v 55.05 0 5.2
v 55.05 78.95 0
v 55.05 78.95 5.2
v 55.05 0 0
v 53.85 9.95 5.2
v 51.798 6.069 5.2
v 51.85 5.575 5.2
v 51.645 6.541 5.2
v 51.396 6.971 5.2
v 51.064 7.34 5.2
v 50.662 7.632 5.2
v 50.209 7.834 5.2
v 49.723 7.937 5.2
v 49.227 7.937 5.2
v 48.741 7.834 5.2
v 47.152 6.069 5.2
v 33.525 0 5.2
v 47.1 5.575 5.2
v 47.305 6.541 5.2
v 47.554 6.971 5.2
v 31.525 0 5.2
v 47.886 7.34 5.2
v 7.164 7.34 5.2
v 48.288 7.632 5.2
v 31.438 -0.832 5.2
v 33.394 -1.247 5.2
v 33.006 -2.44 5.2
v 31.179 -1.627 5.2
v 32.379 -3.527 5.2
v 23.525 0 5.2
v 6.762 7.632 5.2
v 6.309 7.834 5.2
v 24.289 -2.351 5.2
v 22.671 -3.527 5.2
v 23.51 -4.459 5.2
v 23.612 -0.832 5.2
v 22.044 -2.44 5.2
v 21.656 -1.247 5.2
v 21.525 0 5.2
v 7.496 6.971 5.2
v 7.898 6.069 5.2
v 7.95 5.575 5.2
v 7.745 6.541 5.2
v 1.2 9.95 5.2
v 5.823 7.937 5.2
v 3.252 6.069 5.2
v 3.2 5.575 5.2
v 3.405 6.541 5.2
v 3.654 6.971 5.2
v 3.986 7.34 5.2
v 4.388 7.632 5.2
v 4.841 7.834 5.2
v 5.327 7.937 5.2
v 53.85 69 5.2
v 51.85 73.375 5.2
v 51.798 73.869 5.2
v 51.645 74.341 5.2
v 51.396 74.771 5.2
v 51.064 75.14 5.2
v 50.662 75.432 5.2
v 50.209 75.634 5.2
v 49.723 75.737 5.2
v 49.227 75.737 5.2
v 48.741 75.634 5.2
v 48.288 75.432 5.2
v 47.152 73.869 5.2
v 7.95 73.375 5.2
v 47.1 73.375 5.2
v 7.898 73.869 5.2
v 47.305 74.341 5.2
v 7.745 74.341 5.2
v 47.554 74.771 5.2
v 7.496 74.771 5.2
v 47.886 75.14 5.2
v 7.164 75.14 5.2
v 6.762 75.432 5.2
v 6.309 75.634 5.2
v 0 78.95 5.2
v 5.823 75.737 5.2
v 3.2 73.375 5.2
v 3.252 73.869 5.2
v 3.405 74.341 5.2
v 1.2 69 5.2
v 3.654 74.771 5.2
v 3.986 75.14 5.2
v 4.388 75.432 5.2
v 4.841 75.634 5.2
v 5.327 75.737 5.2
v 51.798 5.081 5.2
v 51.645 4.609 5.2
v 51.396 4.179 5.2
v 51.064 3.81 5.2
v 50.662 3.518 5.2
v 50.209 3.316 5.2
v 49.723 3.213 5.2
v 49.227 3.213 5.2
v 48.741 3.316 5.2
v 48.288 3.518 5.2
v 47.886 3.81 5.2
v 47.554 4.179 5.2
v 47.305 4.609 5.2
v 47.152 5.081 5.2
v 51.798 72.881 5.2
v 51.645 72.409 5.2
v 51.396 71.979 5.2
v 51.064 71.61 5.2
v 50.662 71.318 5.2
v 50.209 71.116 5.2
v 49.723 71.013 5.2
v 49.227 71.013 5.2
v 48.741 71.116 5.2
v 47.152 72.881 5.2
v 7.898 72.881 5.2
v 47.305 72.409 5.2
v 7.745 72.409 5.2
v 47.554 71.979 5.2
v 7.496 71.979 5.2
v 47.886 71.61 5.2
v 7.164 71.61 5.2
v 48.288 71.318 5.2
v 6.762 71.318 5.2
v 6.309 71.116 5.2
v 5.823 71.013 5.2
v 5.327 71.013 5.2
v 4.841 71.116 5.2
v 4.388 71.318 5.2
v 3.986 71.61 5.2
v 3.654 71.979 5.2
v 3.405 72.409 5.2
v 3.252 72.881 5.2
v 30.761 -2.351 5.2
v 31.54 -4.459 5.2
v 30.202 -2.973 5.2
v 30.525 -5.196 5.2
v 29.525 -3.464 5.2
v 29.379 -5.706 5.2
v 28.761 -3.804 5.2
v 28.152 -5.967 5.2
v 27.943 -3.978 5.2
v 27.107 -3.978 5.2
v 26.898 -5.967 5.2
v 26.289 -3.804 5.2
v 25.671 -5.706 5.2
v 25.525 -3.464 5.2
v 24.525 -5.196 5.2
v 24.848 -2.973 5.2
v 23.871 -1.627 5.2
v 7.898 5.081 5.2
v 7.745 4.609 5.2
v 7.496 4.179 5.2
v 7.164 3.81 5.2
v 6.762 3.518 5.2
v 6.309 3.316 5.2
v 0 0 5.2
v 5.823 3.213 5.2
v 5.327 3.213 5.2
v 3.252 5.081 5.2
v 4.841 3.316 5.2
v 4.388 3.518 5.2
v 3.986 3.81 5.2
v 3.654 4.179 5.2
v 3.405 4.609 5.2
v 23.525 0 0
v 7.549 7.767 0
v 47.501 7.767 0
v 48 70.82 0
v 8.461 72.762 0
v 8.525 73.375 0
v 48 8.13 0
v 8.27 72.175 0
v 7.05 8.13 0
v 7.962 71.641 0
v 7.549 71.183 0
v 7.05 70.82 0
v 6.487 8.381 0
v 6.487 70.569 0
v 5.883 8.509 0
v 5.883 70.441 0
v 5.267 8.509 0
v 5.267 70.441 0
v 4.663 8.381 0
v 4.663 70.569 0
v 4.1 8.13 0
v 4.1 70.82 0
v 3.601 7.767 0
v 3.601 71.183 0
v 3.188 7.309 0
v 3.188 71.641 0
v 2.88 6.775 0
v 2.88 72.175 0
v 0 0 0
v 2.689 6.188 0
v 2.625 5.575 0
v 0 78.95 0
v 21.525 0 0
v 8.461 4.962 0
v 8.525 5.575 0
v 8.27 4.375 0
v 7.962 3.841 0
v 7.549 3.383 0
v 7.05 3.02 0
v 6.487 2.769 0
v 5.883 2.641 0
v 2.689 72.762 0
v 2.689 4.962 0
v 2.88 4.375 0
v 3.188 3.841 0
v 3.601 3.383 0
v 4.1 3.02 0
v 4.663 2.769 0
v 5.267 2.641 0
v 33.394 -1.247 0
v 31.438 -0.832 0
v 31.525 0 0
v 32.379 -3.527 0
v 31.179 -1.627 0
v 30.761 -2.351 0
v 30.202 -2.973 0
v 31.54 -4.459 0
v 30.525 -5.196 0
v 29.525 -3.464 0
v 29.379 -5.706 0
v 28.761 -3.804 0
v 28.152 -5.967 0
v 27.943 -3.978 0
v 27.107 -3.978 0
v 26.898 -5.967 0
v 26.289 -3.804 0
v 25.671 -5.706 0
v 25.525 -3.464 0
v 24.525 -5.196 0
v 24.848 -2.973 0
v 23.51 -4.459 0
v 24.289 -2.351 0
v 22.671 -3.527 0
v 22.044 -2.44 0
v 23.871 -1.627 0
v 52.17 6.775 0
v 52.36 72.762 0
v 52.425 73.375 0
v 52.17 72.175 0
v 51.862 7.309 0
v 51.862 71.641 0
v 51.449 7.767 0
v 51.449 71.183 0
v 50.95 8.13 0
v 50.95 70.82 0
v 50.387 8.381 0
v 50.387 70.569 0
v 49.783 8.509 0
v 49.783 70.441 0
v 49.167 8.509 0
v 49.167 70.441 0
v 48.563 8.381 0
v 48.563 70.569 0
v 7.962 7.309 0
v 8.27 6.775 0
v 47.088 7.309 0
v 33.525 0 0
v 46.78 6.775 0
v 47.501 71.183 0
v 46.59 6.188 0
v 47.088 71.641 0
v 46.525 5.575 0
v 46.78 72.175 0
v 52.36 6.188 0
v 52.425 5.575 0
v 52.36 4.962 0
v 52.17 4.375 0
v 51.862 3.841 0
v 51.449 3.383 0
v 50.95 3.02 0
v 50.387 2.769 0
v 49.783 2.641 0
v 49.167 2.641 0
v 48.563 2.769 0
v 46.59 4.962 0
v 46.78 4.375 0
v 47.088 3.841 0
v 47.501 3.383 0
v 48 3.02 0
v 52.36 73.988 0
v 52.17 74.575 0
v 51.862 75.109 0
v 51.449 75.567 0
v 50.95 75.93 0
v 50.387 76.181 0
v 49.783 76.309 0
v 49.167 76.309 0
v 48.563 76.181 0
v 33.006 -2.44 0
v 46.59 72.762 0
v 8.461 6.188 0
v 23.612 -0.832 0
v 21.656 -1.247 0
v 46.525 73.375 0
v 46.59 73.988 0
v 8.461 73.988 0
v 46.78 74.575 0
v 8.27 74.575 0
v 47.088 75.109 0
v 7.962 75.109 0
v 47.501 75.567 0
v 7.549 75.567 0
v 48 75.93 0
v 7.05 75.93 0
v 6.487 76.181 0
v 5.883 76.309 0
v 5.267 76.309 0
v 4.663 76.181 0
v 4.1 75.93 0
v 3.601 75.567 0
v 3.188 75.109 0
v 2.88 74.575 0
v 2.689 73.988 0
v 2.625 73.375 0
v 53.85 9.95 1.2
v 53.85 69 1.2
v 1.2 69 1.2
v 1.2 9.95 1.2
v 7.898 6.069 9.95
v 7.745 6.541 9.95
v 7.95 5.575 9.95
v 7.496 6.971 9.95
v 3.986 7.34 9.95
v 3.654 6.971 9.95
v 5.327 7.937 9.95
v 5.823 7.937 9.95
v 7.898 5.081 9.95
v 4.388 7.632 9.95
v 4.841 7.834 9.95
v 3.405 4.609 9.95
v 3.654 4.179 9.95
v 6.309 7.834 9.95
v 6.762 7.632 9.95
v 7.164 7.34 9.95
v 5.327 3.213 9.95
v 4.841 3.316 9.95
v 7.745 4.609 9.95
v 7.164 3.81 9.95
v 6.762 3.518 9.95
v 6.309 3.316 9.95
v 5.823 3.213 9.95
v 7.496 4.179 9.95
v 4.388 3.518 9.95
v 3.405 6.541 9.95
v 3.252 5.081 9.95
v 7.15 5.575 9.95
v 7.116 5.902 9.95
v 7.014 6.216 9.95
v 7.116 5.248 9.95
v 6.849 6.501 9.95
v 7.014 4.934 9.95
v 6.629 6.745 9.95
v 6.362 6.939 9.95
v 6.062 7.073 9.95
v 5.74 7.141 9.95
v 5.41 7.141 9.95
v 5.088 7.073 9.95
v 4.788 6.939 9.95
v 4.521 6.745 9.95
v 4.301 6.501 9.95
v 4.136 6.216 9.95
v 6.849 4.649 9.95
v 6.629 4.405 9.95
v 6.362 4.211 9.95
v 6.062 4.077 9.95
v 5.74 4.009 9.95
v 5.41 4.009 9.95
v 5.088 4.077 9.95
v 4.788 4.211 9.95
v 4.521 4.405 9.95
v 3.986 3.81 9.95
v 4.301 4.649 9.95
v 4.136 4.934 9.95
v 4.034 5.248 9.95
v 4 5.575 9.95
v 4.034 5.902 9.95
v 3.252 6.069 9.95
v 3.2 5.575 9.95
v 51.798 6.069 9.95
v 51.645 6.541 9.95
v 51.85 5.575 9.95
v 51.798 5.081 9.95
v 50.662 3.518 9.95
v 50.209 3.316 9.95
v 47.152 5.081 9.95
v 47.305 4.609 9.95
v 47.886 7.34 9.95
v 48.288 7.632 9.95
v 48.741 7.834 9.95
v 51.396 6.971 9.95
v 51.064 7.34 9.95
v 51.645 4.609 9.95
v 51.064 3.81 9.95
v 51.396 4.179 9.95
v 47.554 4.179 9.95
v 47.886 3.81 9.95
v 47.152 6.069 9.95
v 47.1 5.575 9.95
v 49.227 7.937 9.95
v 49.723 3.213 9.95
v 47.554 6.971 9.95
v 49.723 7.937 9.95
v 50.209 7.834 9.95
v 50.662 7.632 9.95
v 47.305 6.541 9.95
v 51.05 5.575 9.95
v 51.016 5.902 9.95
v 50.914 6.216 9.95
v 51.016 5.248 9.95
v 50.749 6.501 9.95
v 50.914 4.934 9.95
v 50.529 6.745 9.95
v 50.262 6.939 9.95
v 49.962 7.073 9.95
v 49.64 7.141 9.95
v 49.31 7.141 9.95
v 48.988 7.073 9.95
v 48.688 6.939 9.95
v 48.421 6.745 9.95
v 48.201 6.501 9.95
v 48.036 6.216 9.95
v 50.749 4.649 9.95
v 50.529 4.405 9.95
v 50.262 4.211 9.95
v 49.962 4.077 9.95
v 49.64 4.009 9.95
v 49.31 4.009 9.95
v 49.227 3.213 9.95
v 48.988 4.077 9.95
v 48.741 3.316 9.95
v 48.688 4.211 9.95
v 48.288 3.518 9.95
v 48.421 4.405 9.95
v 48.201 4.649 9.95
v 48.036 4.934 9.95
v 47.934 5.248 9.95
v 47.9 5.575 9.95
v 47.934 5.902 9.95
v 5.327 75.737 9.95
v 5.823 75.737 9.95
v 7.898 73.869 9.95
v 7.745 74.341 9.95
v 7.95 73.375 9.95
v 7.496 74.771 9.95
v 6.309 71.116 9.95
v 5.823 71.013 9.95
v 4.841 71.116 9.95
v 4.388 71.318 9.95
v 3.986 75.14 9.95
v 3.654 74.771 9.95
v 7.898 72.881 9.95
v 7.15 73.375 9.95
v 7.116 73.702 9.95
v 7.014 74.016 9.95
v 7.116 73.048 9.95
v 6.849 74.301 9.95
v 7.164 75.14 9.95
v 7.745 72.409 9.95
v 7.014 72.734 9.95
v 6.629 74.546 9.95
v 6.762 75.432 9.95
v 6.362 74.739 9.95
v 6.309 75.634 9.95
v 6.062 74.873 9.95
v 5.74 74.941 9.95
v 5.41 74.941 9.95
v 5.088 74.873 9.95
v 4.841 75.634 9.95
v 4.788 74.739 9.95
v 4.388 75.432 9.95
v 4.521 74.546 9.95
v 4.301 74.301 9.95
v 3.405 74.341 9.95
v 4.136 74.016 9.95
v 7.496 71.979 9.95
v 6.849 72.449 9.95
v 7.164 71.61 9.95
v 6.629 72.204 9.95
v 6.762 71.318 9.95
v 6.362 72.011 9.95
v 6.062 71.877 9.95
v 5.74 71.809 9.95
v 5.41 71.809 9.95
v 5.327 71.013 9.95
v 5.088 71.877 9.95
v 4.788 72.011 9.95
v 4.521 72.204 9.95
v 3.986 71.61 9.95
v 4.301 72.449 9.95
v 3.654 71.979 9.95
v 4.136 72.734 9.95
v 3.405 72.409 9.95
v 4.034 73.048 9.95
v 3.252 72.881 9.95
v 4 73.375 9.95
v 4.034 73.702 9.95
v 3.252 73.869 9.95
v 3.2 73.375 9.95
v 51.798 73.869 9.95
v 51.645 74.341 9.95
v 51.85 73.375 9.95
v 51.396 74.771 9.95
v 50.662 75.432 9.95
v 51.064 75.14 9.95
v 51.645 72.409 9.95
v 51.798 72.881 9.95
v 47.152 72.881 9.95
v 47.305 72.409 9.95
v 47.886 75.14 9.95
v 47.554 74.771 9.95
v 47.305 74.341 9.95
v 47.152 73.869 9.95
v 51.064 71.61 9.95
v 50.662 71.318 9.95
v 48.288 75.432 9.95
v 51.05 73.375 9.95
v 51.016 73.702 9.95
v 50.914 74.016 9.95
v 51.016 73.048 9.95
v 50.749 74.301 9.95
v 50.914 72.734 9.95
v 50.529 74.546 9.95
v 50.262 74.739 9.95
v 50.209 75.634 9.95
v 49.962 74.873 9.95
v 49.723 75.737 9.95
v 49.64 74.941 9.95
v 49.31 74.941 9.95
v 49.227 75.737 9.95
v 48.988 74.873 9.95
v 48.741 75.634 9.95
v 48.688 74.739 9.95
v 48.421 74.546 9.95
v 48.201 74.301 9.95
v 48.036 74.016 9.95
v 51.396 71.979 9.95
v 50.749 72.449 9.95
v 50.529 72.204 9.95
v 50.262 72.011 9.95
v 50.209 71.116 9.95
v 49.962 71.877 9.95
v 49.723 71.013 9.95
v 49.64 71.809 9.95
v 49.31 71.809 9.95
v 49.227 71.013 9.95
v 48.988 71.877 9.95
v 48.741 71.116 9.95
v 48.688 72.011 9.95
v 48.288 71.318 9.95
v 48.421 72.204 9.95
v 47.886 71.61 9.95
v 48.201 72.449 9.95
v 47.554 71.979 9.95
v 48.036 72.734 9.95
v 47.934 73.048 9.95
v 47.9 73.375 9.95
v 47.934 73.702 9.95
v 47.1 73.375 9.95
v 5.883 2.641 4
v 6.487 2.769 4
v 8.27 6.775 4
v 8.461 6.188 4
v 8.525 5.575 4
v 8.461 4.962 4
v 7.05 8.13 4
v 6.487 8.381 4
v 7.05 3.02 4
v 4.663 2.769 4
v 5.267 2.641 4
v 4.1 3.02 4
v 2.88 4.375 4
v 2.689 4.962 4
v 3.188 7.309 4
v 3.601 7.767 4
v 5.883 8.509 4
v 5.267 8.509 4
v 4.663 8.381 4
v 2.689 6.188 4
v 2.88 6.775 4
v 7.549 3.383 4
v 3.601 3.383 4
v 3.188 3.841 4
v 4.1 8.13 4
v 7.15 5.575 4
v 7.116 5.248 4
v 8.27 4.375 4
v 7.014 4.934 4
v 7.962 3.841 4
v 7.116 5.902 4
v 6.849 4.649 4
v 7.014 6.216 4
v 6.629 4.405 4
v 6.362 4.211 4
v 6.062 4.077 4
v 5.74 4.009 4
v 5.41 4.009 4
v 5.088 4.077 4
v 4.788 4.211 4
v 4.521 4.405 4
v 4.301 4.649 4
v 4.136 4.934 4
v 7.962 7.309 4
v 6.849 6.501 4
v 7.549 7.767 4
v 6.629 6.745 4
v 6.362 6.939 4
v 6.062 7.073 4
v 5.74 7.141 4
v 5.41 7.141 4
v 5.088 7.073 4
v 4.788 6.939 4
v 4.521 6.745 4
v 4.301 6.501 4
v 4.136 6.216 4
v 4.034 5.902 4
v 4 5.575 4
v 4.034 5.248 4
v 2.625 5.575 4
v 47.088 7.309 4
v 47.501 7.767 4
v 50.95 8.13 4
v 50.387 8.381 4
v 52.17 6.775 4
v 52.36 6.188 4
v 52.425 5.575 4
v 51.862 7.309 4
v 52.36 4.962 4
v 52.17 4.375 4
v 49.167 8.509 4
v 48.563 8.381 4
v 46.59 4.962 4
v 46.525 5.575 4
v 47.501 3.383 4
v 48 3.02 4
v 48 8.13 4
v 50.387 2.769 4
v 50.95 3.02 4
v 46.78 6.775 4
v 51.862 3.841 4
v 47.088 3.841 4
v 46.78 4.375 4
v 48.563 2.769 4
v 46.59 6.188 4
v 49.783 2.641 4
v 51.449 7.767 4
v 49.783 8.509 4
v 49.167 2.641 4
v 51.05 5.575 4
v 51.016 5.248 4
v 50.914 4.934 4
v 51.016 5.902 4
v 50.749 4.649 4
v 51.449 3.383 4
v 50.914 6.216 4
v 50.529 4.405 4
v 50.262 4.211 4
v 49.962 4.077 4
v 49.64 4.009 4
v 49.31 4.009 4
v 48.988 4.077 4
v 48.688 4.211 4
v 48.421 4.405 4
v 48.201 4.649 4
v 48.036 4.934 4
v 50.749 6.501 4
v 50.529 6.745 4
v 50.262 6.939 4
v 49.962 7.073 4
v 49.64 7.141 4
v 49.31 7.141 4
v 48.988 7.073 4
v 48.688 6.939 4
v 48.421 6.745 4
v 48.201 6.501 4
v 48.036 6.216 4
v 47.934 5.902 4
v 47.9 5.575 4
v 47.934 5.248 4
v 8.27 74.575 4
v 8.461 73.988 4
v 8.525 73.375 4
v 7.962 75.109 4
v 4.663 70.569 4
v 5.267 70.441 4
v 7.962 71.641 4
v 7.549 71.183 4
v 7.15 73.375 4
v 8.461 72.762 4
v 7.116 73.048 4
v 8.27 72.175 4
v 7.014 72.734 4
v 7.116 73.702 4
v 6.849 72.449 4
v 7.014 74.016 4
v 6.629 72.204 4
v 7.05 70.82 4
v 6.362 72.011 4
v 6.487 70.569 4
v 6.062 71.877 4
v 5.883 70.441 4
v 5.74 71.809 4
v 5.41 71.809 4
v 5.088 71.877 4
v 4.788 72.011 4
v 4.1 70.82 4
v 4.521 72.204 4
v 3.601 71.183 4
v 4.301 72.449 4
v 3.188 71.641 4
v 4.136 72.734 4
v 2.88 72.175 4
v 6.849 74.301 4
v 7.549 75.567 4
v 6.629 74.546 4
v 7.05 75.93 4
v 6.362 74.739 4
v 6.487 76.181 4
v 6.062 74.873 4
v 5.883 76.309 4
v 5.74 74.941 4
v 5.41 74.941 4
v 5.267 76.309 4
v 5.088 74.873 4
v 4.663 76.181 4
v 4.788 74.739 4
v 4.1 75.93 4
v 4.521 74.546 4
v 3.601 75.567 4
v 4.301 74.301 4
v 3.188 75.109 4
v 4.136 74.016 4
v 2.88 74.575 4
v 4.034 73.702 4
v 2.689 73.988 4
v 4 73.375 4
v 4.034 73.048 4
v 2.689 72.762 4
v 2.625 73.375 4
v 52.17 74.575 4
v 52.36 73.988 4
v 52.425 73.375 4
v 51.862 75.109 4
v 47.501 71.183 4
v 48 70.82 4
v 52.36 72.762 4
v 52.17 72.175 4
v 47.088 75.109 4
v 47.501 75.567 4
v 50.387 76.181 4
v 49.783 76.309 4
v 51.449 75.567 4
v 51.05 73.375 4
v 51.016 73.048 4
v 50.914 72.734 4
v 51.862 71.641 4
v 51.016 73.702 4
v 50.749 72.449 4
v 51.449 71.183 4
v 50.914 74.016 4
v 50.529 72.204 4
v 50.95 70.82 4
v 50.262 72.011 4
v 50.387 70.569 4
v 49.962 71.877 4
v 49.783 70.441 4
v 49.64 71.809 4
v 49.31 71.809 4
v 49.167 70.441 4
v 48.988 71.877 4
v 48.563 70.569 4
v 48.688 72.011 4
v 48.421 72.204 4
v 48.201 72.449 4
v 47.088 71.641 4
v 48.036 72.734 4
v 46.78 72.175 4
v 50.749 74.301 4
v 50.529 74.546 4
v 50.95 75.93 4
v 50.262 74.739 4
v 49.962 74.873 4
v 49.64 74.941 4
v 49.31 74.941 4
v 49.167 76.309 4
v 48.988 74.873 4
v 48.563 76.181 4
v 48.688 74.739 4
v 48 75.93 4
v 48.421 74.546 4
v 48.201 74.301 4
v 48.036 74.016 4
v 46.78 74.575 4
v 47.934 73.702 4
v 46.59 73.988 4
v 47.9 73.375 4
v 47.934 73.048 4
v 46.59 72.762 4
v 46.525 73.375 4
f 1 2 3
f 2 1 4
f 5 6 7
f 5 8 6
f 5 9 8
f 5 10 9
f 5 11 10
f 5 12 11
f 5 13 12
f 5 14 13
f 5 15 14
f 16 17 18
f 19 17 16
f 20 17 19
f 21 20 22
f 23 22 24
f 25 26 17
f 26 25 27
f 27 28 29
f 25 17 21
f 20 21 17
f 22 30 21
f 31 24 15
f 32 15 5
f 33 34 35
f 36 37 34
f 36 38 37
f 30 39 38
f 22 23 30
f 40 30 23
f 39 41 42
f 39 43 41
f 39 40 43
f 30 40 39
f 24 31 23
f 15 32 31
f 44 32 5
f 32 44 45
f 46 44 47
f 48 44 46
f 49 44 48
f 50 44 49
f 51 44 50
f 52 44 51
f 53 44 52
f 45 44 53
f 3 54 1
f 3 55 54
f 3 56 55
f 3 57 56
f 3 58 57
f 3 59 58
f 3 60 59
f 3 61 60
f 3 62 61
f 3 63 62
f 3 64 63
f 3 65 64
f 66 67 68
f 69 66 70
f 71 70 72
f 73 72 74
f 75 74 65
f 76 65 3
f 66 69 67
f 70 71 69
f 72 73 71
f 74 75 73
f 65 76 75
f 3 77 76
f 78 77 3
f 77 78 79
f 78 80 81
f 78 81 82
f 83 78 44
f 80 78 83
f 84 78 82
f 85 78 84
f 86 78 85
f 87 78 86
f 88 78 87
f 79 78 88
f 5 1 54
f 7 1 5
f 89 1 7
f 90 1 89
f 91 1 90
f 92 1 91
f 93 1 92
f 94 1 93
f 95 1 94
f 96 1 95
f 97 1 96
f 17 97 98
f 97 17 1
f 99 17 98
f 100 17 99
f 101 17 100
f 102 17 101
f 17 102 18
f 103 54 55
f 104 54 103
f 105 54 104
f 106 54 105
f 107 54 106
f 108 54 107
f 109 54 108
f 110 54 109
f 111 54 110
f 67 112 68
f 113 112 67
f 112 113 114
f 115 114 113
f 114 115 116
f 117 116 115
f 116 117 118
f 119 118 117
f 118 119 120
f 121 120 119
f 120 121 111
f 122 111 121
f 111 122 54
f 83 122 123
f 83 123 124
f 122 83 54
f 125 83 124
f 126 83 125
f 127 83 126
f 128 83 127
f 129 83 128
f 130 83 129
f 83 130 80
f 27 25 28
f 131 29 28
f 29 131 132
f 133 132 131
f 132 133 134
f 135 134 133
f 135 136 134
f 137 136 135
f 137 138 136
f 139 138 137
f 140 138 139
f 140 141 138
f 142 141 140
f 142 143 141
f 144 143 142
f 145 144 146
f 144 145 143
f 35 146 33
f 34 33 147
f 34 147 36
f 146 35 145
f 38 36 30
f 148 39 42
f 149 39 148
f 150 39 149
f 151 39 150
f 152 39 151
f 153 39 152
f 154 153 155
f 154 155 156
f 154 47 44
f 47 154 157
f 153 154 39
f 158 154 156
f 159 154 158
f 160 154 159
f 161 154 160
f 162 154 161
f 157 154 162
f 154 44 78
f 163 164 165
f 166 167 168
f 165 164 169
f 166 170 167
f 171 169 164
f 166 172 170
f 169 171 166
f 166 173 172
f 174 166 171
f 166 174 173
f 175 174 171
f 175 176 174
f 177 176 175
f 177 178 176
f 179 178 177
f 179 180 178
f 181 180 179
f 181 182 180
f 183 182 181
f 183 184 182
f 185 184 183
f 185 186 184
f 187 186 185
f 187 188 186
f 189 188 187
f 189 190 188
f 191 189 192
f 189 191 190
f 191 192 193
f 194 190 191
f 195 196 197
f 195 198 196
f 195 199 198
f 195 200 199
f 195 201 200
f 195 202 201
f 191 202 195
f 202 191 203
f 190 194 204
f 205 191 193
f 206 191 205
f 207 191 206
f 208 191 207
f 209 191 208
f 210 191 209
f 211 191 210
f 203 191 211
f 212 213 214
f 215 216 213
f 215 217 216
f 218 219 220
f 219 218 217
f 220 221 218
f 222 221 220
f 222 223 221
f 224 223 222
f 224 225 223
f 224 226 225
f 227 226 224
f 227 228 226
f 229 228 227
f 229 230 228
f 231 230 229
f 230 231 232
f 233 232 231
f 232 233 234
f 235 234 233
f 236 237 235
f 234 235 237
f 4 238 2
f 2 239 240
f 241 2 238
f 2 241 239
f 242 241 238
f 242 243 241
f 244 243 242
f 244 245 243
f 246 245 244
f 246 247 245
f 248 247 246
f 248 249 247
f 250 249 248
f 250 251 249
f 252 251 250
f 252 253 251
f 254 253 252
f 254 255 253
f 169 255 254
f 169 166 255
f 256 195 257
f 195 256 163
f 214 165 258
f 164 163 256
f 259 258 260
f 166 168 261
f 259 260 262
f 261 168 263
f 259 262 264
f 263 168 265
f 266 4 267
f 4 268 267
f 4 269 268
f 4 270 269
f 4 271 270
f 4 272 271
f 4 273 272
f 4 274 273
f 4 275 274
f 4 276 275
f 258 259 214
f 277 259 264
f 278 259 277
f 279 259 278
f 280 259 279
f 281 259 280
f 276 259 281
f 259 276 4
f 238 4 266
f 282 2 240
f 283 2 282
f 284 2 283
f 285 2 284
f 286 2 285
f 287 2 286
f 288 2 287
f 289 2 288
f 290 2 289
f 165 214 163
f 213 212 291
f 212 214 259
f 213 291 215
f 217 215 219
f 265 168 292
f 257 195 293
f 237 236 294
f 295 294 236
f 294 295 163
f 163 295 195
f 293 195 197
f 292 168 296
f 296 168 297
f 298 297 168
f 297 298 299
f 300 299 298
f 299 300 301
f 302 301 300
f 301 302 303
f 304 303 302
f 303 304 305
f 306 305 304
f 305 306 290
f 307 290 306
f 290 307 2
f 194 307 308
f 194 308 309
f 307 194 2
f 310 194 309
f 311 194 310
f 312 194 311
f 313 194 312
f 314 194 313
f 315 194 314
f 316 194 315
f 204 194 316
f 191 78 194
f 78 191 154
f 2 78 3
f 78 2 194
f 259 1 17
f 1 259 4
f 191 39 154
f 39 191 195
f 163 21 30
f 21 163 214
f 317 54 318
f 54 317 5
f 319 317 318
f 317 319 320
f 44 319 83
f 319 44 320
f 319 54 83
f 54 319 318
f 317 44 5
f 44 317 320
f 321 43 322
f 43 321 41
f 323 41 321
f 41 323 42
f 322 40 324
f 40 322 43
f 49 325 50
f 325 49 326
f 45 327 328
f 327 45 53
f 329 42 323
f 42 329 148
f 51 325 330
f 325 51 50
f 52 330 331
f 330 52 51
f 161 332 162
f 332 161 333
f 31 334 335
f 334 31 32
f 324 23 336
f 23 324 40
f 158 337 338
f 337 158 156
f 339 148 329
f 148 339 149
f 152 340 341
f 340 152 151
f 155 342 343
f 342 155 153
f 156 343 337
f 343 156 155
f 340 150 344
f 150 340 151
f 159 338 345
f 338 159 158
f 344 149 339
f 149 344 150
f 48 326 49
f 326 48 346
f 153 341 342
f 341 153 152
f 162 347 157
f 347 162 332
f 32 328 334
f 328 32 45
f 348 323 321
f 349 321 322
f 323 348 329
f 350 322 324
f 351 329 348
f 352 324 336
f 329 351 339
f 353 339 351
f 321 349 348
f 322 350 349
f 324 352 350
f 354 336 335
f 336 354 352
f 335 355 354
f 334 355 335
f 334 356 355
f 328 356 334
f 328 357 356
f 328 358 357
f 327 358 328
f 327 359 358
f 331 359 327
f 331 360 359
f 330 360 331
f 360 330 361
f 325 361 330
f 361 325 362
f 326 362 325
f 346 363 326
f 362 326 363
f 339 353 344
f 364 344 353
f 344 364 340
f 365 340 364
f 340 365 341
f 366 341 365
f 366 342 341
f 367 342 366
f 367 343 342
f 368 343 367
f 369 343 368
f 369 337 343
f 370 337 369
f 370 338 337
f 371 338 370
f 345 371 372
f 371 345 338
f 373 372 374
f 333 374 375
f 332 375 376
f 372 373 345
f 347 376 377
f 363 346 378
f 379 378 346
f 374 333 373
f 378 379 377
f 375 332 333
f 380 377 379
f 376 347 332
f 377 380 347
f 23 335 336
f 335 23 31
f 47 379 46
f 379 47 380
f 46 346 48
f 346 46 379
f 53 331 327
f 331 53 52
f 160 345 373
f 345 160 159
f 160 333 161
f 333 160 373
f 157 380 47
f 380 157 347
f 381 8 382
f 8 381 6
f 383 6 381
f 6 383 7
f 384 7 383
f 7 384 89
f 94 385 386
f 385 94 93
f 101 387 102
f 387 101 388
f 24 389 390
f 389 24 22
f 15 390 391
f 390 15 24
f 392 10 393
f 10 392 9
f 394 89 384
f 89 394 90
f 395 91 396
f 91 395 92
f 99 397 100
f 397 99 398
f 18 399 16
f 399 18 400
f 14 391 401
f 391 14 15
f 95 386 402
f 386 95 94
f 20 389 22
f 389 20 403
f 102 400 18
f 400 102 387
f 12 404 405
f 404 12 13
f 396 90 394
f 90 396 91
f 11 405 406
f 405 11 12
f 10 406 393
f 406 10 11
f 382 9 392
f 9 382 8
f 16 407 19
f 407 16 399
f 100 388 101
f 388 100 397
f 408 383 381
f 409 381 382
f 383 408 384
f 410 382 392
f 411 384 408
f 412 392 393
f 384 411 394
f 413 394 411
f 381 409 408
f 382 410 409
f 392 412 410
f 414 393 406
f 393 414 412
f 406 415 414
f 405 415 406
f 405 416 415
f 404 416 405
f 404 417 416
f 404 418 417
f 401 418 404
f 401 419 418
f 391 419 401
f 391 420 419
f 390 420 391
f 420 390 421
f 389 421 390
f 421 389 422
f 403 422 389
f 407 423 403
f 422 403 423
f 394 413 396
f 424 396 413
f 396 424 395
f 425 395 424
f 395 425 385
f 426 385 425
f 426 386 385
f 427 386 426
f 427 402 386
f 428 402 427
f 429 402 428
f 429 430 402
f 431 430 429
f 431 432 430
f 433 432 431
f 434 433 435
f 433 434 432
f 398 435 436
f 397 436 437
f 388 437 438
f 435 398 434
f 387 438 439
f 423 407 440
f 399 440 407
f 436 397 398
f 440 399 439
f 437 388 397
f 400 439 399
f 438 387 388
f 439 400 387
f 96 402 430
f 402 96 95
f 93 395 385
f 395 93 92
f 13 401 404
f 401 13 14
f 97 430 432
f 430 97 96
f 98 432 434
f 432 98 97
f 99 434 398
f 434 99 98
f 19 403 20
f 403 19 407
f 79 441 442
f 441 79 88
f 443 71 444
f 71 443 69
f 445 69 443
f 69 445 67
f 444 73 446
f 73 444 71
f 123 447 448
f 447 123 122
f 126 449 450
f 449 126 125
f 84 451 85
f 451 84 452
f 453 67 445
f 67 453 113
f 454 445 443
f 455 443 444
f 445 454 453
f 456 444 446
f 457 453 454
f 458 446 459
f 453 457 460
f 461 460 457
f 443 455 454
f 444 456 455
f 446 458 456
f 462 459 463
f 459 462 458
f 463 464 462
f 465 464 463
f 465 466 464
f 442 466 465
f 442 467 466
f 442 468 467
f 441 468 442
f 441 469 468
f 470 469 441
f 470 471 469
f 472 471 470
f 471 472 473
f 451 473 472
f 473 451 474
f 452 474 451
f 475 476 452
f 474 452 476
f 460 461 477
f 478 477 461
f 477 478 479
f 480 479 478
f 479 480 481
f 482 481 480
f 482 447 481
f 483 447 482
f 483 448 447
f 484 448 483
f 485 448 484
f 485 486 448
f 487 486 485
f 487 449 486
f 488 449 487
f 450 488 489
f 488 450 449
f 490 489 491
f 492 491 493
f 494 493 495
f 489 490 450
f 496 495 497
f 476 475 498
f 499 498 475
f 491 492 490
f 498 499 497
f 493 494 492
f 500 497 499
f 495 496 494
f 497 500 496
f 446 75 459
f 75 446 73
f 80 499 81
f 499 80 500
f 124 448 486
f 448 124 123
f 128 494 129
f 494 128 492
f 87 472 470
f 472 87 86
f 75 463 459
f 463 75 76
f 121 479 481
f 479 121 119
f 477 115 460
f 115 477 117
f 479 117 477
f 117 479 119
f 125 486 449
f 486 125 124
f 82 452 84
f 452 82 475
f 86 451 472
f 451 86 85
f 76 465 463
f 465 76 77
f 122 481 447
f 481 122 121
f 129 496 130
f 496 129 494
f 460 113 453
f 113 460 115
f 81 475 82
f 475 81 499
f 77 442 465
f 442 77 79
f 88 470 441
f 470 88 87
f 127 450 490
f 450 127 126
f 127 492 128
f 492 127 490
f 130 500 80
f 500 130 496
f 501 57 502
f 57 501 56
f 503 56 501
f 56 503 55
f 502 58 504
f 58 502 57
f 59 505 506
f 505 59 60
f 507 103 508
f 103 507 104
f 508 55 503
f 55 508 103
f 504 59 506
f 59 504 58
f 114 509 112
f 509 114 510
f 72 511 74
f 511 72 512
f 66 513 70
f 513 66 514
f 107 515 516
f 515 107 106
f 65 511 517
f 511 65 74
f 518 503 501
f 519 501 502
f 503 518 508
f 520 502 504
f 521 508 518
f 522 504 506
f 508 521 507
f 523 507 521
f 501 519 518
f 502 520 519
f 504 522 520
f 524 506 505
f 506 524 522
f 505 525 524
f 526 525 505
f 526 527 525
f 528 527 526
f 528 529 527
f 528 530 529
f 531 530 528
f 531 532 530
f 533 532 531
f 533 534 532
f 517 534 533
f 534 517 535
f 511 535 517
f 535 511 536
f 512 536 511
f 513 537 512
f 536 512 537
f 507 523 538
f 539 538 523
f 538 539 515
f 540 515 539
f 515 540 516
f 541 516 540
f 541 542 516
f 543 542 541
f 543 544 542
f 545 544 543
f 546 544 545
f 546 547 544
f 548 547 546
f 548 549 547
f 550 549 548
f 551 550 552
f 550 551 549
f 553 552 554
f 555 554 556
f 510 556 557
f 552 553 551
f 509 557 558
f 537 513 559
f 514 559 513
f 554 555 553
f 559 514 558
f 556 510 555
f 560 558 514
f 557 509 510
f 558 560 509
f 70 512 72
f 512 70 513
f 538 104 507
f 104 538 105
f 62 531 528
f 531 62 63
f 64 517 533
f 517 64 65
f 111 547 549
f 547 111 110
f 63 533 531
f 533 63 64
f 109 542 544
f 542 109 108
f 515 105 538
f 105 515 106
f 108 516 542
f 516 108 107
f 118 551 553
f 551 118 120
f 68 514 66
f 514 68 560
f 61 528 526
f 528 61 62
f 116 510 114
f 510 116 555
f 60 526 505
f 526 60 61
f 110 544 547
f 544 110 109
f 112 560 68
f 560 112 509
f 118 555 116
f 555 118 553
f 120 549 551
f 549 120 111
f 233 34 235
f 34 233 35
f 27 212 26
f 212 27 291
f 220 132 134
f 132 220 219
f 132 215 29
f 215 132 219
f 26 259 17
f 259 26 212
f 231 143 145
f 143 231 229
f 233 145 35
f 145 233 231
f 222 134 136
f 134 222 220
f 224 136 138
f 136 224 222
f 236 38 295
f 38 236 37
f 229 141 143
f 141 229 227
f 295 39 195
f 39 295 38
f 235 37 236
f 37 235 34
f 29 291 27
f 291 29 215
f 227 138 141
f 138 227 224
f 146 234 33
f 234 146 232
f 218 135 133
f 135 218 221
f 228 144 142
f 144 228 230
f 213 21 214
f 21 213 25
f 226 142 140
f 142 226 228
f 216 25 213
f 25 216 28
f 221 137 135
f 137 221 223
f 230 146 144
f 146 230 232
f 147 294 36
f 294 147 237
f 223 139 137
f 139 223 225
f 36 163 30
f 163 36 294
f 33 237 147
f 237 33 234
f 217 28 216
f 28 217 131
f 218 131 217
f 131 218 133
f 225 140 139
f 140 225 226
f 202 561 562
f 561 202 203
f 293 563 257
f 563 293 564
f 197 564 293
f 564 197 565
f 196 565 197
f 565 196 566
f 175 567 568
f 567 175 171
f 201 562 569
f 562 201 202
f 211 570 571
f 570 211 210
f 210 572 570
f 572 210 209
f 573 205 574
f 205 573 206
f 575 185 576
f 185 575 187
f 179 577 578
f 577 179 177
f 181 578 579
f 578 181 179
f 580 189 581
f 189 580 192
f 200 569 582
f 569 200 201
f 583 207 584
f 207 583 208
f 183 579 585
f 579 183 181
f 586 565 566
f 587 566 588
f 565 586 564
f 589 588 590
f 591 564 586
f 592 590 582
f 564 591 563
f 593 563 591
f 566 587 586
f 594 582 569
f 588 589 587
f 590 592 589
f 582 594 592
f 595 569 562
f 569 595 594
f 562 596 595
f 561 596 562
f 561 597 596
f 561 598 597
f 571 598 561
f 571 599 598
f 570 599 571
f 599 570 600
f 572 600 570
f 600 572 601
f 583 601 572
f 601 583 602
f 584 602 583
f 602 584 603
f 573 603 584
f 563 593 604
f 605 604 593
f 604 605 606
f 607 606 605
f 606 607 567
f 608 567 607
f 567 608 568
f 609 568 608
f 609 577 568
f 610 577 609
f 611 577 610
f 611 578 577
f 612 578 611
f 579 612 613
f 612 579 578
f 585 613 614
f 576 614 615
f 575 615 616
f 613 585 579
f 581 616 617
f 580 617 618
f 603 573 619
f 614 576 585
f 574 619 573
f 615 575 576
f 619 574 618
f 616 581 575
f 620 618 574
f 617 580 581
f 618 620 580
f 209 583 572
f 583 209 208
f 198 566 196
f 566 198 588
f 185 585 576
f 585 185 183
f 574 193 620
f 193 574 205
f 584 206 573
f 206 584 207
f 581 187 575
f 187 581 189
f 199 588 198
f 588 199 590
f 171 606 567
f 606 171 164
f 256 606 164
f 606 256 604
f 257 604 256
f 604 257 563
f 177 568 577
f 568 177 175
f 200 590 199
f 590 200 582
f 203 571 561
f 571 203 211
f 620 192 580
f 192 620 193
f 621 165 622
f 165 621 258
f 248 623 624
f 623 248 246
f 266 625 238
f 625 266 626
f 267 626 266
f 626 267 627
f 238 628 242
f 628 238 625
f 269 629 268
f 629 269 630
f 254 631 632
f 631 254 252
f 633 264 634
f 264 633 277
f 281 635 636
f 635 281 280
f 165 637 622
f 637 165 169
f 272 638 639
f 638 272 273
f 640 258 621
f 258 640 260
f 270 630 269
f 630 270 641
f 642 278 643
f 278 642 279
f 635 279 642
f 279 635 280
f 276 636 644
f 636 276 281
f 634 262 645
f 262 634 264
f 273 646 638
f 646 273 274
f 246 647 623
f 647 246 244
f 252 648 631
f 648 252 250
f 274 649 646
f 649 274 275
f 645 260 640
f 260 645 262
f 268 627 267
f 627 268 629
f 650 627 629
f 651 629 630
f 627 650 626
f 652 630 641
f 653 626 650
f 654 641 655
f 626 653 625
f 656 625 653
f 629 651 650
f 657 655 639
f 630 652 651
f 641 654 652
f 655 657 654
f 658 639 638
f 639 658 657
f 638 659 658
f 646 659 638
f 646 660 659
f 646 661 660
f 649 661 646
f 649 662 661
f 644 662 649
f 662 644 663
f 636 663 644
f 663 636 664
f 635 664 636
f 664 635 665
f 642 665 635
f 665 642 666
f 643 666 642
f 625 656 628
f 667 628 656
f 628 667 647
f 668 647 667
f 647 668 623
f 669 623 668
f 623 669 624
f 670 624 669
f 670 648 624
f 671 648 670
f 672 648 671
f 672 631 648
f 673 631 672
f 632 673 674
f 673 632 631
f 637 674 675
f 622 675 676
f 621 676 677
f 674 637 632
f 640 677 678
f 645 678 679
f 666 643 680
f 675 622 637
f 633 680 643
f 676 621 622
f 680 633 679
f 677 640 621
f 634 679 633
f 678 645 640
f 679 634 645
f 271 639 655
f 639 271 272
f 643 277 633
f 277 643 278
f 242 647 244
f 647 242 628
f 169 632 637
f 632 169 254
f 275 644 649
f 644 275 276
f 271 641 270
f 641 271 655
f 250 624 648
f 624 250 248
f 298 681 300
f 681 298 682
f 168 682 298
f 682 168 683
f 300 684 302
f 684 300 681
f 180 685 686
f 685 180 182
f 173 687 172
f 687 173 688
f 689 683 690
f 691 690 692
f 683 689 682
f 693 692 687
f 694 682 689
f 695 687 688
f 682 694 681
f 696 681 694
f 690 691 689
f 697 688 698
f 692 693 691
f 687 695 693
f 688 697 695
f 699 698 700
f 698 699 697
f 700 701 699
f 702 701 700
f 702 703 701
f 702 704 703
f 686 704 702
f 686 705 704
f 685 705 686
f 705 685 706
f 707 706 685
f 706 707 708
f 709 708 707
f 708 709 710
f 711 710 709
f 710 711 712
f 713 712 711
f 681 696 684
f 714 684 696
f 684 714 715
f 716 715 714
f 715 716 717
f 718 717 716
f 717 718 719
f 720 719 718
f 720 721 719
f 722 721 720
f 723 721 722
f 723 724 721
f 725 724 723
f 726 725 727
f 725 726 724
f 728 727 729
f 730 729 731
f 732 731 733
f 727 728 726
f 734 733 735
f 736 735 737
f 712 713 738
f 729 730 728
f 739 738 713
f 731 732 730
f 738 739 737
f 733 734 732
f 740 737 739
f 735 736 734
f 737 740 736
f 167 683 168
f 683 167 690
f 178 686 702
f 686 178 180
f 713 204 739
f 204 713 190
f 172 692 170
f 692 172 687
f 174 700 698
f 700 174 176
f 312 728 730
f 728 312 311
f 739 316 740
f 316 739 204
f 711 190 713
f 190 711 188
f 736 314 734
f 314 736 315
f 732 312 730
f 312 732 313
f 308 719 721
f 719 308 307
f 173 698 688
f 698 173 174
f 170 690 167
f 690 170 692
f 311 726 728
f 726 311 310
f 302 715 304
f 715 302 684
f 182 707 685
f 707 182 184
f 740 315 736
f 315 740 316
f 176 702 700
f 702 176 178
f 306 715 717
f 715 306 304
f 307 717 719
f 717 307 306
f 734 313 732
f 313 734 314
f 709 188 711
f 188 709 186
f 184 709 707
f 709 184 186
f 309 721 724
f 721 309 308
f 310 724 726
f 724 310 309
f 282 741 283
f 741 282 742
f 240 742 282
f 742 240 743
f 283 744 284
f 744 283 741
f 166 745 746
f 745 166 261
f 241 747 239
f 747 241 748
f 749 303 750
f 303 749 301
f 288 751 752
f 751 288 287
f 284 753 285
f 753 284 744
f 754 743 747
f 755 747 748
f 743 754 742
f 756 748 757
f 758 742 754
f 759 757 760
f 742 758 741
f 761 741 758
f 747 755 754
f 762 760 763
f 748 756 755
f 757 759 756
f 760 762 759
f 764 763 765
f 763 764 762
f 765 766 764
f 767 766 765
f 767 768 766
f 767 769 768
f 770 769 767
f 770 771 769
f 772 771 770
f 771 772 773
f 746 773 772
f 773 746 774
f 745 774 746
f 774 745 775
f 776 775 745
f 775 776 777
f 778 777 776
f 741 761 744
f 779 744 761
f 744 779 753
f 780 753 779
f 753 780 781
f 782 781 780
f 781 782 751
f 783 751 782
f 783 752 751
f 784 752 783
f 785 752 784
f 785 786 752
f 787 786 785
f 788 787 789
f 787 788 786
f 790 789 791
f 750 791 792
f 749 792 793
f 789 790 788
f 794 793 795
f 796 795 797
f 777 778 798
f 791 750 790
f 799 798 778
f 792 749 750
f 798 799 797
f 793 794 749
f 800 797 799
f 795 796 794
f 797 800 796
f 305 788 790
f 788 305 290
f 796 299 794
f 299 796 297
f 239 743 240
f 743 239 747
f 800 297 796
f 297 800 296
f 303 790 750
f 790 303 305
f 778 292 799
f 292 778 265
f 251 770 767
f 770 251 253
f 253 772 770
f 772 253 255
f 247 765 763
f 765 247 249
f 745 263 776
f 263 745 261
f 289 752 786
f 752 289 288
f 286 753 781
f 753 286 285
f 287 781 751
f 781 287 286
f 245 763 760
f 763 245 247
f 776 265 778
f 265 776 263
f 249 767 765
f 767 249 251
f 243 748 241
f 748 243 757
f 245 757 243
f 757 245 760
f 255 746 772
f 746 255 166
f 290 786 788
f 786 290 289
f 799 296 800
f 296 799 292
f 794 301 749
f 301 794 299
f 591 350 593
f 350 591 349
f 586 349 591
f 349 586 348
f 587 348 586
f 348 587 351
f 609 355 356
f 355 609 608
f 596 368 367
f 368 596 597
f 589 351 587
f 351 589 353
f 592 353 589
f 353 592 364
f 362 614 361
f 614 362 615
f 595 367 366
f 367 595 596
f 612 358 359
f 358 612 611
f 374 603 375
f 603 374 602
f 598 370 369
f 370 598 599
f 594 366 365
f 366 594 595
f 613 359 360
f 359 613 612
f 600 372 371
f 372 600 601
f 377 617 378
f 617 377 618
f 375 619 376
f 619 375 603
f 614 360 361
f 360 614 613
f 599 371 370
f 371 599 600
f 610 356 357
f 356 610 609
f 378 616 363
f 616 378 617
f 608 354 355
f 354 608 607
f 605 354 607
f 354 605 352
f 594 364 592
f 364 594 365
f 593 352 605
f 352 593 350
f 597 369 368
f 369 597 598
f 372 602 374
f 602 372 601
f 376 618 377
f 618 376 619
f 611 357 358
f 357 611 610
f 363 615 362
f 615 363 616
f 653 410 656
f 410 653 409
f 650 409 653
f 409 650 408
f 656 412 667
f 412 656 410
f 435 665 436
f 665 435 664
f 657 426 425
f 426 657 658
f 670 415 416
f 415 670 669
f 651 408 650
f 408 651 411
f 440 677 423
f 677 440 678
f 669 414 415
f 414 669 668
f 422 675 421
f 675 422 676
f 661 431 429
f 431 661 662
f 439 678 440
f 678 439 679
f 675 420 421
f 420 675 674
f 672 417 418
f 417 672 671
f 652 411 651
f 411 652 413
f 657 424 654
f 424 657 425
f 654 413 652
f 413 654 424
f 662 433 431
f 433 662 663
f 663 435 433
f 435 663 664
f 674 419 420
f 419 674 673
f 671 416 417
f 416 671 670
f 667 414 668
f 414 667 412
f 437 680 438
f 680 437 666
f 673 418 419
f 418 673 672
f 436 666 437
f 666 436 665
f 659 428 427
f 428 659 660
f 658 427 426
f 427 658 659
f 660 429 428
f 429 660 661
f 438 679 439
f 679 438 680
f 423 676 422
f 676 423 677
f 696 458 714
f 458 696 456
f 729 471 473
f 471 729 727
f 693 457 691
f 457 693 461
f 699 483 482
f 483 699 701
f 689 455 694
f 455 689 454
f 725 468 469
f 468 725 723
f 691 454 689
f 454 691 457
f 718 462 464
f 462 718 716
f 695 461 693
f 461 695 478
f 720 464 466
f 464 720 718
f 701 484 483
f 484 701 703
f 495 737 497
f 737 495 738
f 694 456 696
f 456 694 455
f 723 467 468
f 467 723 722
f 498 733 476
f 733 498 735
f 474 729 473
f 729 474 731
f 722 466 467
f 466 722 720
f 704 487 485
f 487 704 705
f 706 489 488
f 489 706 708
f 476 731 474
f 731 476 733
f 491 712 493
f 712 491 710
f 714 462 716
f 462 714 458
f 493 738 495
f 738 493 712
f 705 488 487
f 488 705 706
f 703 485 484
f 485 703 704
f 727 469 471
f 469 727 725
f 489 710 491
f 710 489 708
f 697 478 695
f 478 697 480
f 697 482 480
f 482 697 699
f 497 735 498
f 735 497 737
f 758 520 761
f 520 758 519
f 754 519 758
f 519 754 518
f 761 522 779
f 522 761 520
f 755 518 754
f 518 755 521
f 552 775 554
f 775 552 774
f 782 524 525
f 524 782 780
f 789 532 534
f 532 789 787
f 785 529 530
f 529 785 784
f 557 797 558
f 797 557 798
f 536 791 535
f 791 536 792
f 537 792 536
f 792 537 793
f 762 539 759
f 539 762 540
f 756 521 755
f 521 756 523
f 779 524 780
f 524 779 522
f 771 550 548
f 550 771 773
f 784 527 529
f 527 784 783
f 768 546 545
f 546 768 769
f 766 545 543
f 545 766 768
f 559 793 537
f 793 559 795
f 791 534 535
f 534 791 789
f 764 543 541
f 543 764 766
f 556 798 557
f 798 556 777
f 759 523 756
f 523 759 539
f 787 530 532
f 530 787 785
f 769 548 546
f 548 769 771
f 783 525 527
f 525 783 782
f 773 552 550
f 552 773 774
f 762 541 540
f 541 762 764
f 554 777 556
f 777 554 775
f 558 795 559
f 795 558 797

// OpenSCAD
//------------------------------------------------
// 1 - base of the Xmas-tree controller
//
// author: Alessandro Paganelli 
// e-mail: alessandro.paganelli@gmail.com
// github: https://github.com/allep
// license: GPL-3.0-or-later
// 
// Description
// This case is to be used with quite common
// 50x70mm prototype boards.
//
// All sizes are expressed in mm.
//------------------------------------------------

// Set face number to a sufficiently high number.
$fn = 30;

//------------------------------------------------
// Debug mode
// Set DEBUG_MODE to 1 to simulate the actual 
// screw positions, to validate the design.
DEBUG_MODE = 0;

//------------------------------------------------
// Variables

//------------------------------------------------
// Pockets
// Let's increase a little bit pocket sizs in order 
// to allow for easier simulation.
POCKET_TOLERANCE = 0.1;

//------------------------------------------------
// Hat

WALL_THICKNESS = 1.2;
BASE_THICKNESS = 1.2;
BASE_THICKNESS_SCREWS = 5.2;

CYLINDER_THICKNESS = 0.8;

// For M3 screws it must be 1.5 mm + 5% tolerance
CYLINDER_RADIUS = 1.575;
CYLINDER_HEIGHT = 4.75;

// tolerances
CYLINDER_GAP = 2.0;

//------------------------------------------------
// Board size
// Based on NodeMCU Amica ESP-8266 board.
SCREW_DISTANCE_Y = 67.8;
SCREW_DISTANCE_X = 43.9;

//------------------------------------------------
// Screw sizes (M3)
SCREW_RADIUS = 1.5;
Z_SCREW_LEN = 19;
Z_SCREW_HEAD_LEN = 4.0;
SCREW_HEAD_RADIUS = 2.85;
SCREW_HEAD_RADIUS_GAP = 0.1;

//------------------------------------------------
// Ring holder
RING_HOLDER_RADIUS_OUTER = 6;
RING_HOLDER_RADIUS_INNER = 4;

//------------------------------------------------
// Actual script

// First compute sizes
// Note: these must match with those of 01_body.scad
x_len_outer = SCREW_DISTANCE_X + 2*(CYLINDER_RADIUS + CYLINDER_THICKNESS + CYLINDER_GAP + WALL_THICKNESS);
y_len_outer = SCREW_DISTANCE_Y + 2*(CYLINDER_RADIUS + CYLINDER_THICKNESS + CYLINDER_GAP + WALL_THICKNESS);

x_screw_head_base = 2*(CYLINDER_THICKNESS + CYLINDER_RADIUS + CYLINDER_GAP) + WALL_THICKNESS;

// Now compute inner sizes
y_len_inner = y_len_outer - 2*x_screw_head_base;
x_len_inner = x_len_outer - 2*WALL_THICKNESS;
z_len_inner = BASE_THICKNESS_SCREWS - BASE_THICKNESS;

echo("Computed X len = ", x_len_outer, " and Y len = ", y_len_outer);
echo("Computed screw head base = ", x_screw_head_base);

difference() {
    union()
    {
        difference() {
            cube([x_len_outer, y_len_outer, BASE_THICKNESS_SCREWS]);
            translate([WALL_THICKNESS, x_screw_head_base, BASE_THICKNESS])
            cube([x_len_inner, y_len_inner, z_len_inner + POCKET_TOLERANCE]);
        }

        // screw cylinders (without screw actual hole)
        for (j = [0:1]) {
            for ( i = [0:1] ) {
                // compute the shift needed
                shift_x = i*SCREW_DISTANCE_X + CYLINDER_THICKNESS + CYLINDER_RADIUS + CYLINDER_GAP + WALL_THICKNESS;
                shift_y = j*SCREW_DISTANCE_Y + CYLINDER_THICKNESS + CYLINDER_RADIUS + CYLINDER_GAP + WALL_THICKNESS;
                shift_z = BASE_THICKNESS_SCREWS;
                translate([shift_x, shift_y, shift_z])
                cylinder(h = CYLINDER_HEIGHT, r = CYLINDER_RADIUS + CYLINDER_THICKNESS);
            }
        }
        
        // holding ring
        translate([x_len_outer/2, 0, 0])
        difference() {
            cylinder(h = BASE_THICKNESS_SCREWS, r = RING_HOLDER_RADIUS_OUTER);
            cylinder(h = BASE_THICKNESS_SCREWS + POCKET_TOLERANCE, r = RING_HOLDER_RADIUS_INNER);
        }
        
    }
    // screw head holes
    for (j = [0:1]) {
        for ( i = [0:1] ) {
            // compute the shift needed
            shift_x = i*SCREW_DISTANCE_X + CYLINDER_THICKNESS + CYLINDER_RADIUS + CYLINDER_GAP + WALL_THICKNESS;
            shift_y = j*SCREW_DISTANCE_Y + CYLINDER_THICKNESS + CYLINDER_RADIUS + CYLINDER_GAP + WALL_THICKNESS;
            shift_z = - POCKET_TOLERANCE;
            translate([shift_x, shift_y, shift_z])
            cylinder(h = Z_SCREW_HEAD_LEN + POCKET_TOLERANCE, r = SCREW_HEAD_RADIUS + SCREW_HEAD_RADIUS_GAP);
        }
    }
    // actual screw holes
    for (j = [0:1]) {
        for ( i = [0:1] ) {
            // compute the shift needed
            shift_x = i*SCREW_DISTANCE_X + CYLINDER_THICKNESS + CYLINDER_RADIUS + CYLINDER_GAP + WALL_THICKNESS;
            shift_y = j*SCREW_DISTANCE_Y + CYLINDER_THICKNESS + CYLINDER_RADIUS + CYLINDER_GAP + WALL_THICKNESS;
            shift_z = - POCKET_TOLERANCE;
            translate([shift_x, shift_y, shift_z])
            cylinder(h = BASE_THICKNESS_SCREWS + CYLINDER_HEIGHT + 2*POCKET_TOLERANCE, r = CYLINDER_RADIUS);
        }
    }
}

//------------------------------------------------
// Size check
// Draw a simulated version of 4 screws in the right 
// positions, in order to validate the design.

if (DEBUG_MODE == 1) {
    screw1_x = WALL_THICKNESS + CYLINDER_GAP + CYLINDER_THICKNESS + CYLINDER_RADIUS;
    screw1_y = WALL_THICKNESS + CYLINDER_GAP + CYLINDER_THICKNESS + CYLINDER_RADIUS;
    color("red", 0.5)
    translate([screw1_x, screw1_y, 0])
    cylinder(h = Z_SCREW_LEN, r = SCREW_RADIUS);

    screw2_x = WALL_THICKNESS + CYLINDER_GAP + CYLINDER_THICKNESS + CYLINDER_RADIUS;
    screw2_y = WALL_THICKNESS + CYLINDER_GAP + CYLINDER_THICKNESS + CYLINDER_RADIUS + SCREW_DISTANCE_Y;
    color("red", 0.5)
    translate([screw2_x, screw2_y, 0])
    cylinder(h = Z_SCREW_LEN, r = SCREW_RADIUS);

    screw3_x = WALL_THICKNESS + CYLINDER_GAP + CYLINDER_THICKNESS + CYLINDER_RADIUS + SCREW_DISTANCE_X;
    screw3_y = WALL_THICKNESS + CYLINDER_GAP + CYLINDER_THICKNESS + CYLINDER_RADIUS;
    color("red", 0.5)
    translate([screw3_x, screw3_y, 0])
    cylinder(h = Z_SCREW_LEN, r = SCREW_RADIUS);

    screw4_x = WALL_THICKNESS + CYLINDER_GAP + CYLINDER_THICKNESS + CYLINDER_RADIUS + SCREW_DISTANCE_X;
    screw4_y = WALL_THICKNESS + CYLINDER_GAP + CYLINDER_THICKNESS + CYLINDER_RADIUS + SCREW_DISTANCE_Y;
    color("red", 0.5)
    translate([screw4_x, screw4_y, 0])
    cylinder(h = Z_SCREW_LEN, r = SCREW_RADIUS);
}
